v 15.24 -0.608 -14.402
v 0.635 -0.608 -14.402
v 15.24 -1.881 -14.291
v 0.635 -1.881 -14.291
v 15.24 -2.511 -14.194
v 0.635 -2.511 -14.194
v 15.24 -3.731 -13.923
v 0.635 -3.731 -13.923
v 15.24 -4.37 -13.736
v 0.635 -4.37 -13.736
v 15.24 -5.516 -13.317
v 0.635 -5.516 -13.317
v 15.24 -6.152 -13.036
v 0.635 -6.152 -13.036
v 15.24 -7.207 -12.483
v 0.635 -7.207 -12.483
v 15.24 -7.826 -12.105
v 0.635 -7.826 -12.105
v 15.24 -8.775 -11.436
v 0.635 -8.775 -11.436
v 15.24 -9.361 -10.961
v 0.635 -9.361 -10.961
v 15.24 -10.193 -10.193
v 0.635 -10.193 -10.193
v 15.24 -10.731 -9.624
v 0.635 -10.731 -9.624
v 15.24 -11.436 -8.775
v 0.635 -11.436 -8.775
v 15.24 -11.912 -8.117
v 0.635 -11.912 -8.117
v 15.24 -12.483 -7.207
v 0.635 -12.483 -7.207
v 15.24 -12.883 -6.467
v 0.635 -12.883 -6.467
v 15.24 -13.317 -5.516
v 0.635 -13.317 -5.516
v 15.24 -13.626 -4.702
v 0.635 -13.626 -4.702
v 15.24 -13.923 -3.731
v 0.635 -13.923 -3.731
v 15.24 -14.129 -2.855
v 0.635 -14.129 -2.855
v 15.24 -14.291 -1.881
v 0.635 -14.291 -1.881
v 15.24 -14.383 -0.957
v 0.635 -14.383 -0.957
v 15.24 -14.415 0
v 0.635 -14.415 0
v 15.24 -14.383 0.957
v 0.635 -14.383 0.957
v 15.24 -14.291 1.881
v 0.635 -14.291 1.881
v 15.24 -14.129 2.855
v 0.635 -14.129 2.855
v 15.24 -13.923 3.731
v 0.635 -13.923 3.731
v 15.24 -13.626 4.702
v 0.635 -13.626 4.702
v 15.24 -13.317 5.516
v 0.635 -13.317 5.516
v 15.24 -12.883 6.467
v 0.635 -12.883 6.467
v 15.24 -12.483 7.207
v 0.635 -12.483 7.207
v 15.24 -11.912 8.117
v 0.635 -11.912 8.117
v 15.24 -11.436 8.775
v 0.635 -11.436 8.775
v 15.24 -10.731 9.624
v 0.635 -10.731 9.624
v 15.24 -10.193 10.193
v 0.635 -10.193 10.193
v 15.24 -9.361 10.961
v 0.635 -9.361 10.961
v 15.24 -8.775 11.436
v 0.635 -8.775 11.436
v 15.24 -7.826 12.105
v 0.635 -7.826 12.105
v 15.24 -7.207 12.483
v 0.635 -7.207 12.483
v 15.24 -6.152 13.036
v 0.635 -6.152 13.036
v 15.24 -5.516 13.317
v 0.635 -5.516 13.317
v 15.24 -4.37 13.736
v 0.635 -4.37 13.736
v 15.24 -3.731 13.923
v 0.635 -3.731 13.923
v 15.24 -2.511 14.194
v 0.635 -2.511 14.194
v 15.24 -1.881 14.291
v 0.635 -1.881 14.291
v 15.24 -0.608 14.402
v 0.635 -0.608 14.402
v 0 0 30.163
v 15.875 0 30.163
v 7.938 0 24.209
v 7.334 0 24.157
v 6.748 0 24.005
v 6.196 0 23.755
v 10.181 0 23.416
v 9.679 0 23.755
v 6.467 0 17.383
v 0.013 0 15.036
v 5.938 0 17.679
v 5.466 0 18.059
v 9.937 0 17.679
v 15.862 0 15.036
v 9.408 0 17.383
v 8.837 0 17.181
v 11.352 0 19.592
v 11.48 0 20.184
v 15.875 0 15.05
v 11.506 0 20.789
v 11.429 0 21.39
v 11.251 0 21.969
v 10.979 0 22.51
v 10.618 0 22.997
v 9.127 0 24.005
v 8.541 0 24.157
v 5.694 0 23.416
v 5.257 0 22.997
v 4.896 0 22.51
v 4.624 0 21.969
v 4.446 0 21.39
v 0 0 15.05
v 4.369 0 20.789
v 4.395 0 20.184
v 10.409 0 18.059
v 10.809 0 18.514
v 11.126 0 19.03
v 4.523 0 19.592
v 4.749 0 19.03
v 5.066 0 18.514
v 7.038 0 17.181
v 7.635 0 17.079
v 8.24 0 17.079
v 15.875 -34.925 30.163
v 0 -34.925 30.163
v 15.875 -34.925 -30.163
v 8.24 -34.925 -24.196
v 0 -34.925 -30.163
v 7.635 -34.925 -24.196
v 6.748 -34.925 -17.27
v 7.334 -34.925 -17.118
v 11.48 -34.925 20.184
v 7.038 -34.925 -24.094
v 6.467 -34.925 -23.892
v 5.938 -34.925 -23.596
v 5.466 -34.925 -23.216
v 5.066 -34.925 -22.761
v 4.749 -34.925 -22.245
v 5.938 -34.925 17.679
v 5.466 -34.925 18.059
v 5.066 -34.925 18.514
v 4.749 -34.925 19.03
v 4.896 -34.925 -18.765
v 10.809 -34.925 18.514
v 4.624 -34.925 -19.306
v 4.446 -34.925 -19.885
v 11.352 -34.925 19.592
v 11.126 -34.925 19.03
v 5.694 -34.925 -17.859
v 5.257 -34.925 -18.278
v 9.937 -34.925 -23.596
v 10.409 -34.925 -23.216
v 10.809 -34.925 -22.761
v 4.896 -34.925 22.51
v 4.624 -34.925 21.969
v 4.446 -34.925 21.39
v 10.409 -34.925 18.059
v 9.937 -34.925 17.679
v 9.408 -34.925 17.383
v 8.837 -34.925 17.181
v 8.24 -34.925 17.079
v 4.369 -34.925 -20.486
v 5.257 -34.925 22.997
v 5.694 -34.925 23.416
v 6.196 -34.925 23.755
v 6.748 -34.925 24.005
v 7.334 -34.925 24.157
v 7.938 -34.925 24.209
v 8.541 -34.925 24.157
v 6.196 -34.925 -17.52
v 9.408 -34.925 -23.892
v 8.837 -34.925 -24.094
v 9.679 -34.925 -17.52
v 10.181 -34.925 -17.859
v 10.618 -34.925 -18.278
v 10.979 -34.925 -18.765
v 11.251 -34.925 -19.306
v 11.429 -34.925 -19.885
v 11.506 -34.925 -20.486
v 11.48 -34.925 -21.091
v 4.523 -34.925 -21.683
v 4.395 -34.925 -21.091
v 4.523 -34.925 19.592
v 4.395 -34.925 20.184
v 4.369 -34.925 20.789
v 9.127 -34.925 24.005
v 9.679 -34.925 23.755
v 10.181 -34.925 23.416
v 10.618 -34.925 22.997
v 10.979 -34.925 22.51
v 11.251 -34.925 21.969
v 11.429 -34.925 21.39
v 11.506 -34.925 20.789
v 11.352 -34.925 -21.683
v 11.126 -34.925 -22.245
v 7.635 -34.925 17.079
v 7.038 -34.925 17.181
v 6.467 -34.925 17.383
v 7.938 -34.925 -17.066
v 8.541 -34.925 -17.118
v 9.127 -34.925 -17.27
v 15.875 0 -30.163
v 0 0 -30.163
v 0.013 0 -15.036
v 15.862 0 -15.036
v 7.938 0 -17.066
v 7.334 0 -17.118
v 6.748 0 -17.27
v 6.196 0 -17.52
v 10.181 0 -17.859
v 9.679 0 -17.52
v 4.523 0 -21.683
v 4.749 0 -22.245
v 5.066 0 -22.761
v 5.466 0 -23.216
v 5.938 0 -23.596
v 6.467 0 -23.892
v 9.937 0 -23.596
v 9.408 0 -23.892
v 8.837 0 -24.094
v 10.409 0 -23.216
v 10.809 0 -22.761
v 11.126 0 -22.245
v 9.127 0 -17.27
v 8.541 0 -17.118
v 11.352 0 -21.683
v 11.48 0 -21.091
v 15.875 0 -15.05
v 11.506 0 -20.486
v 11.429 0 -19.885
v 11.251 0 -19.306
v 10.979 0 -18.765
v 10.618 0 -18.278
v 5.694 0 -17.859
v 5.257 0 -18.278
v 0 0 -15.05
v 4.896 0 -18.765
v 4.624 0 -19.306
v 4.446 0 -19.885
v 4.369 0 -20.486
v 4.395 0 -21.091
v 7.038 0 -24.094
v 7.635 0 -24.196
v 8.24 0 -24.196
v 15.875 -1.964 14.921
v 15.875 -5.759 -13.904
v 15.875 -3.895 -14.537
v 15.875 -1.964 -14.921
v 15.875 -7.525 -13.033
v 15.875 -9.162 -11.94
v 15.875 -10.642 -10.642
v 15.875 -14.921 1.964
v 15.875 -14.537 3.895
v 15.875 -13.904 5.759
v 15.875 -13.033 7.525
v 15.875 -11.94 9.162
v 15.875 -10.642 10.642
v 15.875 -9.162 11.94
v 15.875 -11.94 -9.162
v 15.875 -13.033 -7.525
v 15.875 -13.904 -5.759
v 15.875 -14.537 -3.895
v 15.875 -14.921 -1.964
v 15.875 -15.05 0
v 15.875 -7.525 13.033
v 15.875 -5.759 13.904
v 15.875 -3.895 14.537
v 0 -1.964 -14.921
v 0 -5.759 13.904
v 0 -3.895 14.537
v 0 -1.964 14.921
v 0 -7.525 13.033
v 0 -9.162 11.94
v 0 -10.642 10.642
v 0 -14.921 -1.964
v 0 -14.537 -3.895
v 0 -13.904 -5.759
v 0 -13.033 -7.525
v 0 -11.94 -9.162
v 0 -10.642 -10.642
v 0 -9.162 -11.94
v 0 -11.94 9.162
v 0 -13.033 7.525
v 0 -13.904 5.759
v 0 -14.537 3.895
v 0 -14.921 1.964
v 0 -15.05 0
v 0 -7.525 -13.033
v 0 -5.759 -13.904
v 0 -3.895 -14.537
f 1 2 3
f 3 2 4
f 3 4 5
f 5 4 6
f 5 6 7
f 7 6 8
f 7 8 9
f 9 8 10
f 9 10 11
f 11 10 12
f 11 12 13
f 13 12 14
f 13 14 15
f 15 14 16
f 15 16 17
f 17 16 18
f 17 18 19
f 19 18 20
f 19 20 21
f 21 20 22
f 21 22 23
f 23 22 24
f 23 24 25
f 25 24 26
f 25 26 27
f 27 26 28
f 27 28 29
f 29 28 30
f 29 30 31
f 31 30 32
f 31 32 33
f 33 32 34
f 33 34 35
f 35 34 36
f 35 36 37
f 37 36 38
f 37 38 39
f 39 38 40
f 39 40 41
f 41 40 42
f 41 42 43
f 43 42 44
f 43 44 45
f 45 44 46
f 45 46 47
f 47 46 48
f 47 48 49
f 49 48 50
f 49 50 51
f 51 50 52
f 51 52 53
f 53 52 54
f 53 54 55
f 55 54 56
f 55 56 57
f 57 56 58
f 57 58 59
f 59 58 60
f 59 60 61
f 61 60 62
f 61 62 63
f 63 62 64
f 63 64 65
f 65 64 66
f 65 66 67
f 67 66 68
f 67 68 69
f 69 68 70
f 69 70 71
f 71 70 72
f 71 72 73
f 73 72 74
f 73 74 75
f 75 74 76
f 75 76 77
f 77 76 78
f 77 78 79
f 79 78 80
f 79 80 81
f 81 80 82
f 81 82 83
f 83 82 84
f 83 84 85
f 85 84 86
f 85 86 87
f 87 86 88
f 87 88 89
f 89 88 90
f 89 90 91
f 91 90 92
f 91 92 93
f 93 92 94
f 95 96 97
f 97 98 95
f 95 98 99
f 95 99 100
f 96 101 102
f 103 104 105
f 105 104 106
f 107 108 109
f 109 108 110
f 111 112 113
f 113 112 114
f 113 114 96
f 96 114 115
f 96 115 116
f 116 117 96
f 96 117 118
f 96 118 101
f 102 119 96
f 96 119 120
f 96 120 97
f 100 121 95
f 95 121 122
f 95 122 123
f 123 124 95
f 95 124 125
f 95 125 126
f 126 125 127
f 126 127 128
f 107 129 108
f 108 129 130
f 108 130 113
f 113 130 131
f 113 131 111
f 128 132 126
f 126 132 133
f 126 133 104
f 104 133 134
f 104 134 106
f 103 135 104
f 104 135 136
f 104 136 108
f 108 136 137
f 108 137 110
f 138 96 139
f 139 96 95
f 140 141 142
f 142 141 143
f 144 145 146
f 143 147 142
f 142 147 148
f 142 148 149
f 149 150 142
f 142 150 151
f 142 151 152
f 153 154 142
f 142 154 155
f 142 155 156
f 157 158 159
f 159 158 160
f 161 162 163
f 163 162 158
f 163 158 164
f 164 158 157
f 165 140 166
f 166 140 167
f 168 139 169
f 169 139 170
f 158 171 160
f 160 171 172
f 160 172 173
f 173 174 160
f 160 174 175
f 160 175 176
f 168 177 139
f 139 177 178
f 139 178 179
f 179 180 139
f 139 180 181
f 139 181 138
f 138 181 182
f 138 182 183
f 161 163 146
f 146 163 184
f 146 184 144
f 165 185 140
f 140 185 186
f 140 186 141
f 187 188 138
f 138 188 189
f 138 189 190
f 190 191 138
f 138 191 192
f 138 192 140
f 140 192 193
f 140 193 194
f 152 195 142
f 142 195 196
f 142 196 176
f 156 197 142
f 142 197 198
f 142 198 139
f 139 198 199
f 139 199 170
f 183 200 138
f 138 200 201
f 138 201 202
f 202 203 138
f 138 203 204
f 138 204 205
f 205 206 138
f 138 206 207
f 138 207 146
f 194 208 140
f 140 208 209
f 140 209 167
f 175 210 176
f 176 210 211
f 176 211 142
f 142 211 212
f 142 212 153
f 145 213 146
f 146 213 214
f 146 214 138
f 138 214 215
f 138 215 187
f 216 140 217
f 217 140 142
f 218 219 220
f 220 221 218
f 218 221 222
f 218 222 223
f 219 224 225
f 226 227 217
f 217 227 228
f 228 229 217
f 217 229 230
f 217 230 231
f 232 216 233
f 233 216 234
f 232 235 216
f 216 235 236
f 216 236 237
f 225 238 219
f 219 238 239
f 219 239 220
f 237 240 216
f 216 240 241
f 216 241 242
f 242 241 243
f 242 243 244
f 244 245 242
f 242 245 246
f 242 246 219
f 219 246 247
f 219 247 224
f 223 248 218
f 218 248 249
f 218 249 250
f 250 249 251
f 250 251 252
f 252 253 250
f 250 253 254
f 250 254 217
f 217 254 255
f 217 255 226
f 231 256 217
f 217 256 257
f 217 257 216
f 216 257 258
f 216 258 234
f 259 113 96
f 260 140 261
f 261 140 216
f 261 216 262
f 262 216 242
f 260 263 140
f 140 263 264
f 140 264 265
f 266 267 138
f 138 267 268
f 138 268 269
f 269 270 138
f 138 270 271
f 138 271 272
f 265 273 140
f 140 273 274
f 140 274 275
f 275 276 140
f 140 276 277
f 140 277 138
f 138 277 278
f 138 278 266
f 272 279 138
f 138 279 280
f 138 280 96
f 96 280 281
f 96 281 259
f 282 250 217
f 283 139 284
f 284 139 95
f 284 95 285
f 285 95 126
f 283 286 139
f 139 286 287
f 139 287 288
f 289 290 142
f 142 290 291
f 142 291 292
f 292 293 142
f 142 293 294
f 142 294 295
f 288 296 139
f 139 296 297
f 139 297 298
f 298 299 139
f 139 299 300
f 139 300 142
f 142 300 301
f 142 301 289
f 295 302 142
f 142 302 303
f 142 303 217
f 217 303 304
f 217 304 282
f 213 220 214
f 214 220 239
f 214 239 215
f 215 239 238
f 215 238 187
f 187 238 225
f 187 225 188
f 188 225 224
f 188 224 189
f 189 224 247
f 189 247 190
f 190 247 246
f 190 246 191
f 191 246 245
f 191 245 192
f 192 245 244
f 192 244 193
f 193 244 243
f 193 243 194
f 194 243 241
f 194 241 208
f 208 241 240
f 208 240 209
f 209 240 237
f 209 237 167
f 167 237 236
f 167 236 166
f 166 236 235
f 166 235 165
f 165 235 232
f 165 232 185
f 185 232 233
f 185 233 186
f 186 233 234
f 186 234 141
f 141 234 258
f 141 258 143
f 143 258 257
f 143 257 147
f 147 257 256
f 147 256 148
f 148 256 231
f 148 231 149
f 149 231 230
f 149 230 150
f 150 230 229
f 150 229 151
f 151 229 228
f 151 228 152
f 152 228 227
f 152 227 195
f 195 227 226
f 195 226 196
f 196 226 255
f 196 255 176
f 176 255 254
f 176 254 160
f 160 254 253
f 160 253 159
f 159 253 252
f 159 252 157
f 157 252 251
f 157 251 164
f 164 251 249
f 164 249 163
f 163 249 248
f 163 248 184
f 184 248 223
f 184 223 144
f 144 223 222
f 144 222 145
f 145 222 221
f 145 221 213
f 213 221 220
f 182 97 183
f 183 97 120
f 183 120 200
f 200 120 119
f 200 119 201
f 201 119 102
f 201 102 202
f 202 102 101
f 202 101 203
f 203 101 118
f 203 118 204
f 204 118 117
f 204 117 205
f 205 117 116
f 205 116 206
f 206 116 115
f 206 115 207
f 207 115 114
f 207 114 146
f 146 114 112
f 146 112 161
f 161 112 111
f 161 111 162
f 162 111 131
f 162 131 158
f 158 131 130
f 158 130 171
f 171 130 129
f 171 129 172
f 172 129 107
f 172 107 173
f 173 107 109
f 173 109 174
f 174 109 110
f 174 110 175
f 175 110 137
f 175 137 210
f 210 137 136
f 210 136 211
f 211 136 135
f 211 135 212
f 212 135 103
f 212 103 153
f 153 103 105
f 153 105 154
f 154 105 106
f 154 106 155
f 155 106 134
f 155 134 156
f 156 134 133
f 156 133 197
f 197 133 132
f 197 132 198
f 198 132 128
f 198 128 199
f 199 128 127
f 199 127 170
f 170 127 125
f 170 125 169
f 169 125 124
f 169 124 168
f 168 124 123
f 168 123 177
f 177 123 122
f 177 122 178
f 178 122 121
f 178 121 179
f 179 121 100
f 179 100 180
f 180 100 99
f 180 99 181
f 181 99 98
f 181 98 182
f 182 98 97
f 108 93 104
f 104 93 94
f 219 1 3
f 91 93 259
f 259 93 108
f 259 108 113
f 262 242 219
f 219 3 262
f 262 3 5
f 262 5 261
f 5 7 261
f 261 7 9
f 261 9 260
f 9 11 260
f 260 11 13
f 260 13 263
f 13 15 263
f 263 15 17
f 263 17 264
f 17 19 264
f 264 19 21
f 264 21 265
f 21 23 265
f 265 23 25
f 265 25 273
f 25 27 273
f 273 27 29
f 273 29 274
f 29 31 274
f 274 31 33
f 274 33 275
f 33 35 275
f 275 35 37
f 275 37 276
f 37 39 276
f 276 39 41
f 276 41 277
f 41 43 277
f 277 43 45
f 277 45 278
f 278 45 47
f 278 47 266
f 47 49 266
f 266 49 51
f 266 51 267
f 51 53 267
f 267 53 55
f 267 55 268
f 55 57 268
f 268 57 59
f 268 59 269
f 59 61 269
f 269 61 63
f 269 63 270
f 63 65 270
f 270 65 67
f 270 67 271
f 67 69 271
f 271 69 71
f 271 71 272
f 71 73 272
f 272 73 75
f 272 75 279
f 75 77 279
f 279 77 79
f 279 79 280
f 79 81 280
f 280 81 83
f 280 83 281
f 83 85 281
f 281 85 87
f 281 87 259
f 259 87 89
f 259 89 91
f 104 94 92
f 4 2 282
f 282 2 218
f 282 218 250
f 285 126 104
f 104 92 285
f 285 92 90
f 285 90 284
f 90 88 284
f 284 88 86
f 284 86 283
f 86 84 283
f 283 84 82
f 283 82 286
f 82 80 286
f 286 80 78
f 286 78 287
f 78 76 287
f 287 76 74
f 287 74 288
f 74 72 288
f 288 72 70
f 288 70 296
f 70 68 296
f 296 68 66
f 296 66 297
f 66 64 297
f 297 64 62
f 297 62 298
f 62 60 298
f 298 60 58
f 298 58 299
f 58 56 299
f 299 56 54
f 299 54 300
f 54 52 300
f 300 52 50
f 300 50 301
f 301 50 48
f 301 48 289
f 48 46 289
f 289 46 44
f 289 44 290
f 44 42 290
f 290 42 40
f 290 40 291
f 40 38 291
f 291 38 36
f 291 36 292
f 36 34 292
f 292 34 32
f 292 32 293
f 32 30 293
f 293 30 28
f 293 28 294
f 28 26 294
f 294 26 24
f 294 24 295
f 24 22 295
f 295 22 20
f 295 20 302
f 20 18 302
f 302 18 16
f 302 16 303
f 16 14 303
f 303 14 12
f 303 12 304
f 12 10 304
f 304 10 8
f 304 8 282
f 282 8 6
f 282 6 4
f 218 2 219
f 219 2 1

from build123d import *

# Parameters (mm, degrees)
BOSS_EXTRUDE1_DEPTH                           = 15.875
BOSS_EXTRUDE2_DEPTH                           = 15.875
CBORE_FOR_1_4_SOCKET_HEAD_CAP_SCREW1_AT_COUNT = 2
CBORE_FOR_1_4_SOCKET_HEAD_CAP_SCREW1_AT_PITCH = 41.275
MOVE_FACE1_BY                                 = 0.127
MOVE_FACE1_2_BY                               = 0.127
MOVE_START                                    = 28.575
MOVE_FACE2_OUTLINE_W                          = 15.875
MOVE_FACE2_OUTLINE_H                          = 60.325
MOVE_FACE2_OUTLINE_R                          = 5.55625
MOVE_FACE2_DEPTH                              = 6.35
MOVE_START_2                                  = 22.225
MOVE_FACE2_2_OUTLINE_R                        = 5.55625
MOVE_FACE2_2_OUTLINE_R_2                      = 3.57124
MOVE_FACE2_2_DEPTH                            = 6.35


with BuildPart() as part:
    # Sketch1 → Boss-Extrude1 (new body)
    with BuildSketch(Plane(origin=(0, 0, 0), x_dir=(0, 0, -1), z_dir=(1, 0, 0))):
        with BuildLine():
            Line((30.1625, 0), (14.2875, 0))
            ThreePointArc((14.2875, 0), (0, -14.2875), (-14.2875, 0))
            Line((-14.2875, 0), (-30.1625, 0))
            Line((-30.1625, 0), (-30.1625, -34.925))
            Line((-30.1625, -34.925), (30.1625, -34.925))
            Line((30.1625, -34.925), (30.1625, 0))
        make_face()
    extrude(amount=BOSS_EXTRUDE1_DEPTH)


with BuildPart() as body_2:
    # Sketch1<3> → Boss-Extrude2 (new body)
    with BuildSketch(Plane(origin=(0, 0, 0), x_dir=(0, 0, -1), z_dir=(1, 0, 0))):
        with BuildLine():
            ThreePointArc((-14.2875, 0), (0, 14.2875), (14.2875, 0))
            Line((14.2875, 0), (30.1625, 0))
            Line((30.1625, 0), (30.1625, 34.925))
            Line((30.1625, 34.925), (-30.1625, 34.925))
            Line((-30.1625, 34.925), (-30.1625, 0))
            Line((-30.1625, 0), (-14.2875, 0))
        make_face()
    extrude(amount=BOSS_EXTRUDE2_DEPTH)


with BuildPart() as cbore_for_1_4_socket_head_cap_screw1_tool:
    # Sketch4 → CBORE for 1/4 Socket Head Cap Screw1 (revolve)
    with BuildSketch(Plane(origin=(7.9375, 34.925, 20.6375), x_dir=(0, 0, 1), z_dir=(1, 0, 0))):
        Polygon((0, 0), (0, 69.85), (3.57124, 69.85), (3.57124, 6.35), (5.55625, 6.35), (5.55625, 0.635), (6.19125, 0), align=None)
    cbore_for_1_4_socket_head_cap_screw1 = revolve(axis=Axis((7.9375, 41.275, 20.6375), (0, -1, 0)))


with BuildPart() as part_1:
    add(part.part)

    # CBORE for 1/4 Socket Head Cap Screw1: cut by cbore_for_1_4_socket_head_cap_screw1_tool
    add(cbore_for_1_4_socket_head_cap_screw1_tool.part, mode=Mode.SUBTRACT)


with BuildPart() as body_2_1:
    add(body_2.part)

    # CBORE for 1/4 Socket Head Cap Screw1: cut by cbore_for_1_4_socket_head_cap_screw1_tool
    add(cbore_for_1_4_socket_head_cap_screw1_tool.part, mode=Mode.SUBTRACT)


with BuildPart() as cbore_for_1_4_socket_head_cap_screw1_at_tool:
    # CBORE for 1/4 Socket Head Cap Screw1 at: CBORE for 1/4 Socket Head Cap Screw1 ×2
    with Locations(*[(0, 0, -i * CBORE_FOR_1_4_SOCKET_HEAD_CAP_SCREW1_AT_PITCH) for i in range(1, CBORE_FOR_1_4_SOCKET_HEAD_CAP_SCREW1_AT_COUNT)]):
        add(cbore_for_1_4_socket_head_cap_screw1)


with BuildPart() as part_2:
    add(part_1.part)

    # CBORE for 1/4 Socket Head Cap Screw1 at: cut by cbore_for_1_4_socket_head_cap_screw1_at_tool
    add(cbore_for_1_4_socket_head_cap_screw1_at_tool.part, mode=Mode.SUBTRACT)

    # Move Face1 2: a curved face moved inward by 0.127
    add(Solid.thicken(part_2.faces().sort_by_distance((7.9375, -14.2875, 0))[0], -MOVE_FACE1_2_BY), mode=Mode.SUBTRACT)

    # Chamfer2
    # the kernel refuses this chamfer: 0.635 mm, written as the material it takes off along each edge
    with BuildSketch(Plane(origin=(0, 0, 0), x_dir=(0, 0.1132288377802066, -0.9935689358544497), z_dir=(0, 0.9935689358544497, 0.1132288377802066))) as chamfer2_piece_1:
        with BuildLine():
            Line((15.067460512, 0.017960512), (14.396539488, -0.652960512))
            Line((14.396539488, -0.652960512), (14.383839488, -0.652960512))
            ThreePointArc((14.383839488, -0.652960512), (14.4018, -0.326480256), (14.4018, 0))
            Line((14.4018, 0), (14.4145, 0.0127))
            ThreePointArc((14.4145, 0.0127), (14.740980256, 0.0127), (15.067460512, 0.030660512))
            Line((15.067460512, 0.030660512), (15.067460512, 0.017960512))
        make_face()
    revolve(axis=Axis((0, 0, 0), (-1, 0, 0)), revolution_arc=193.002955297, mode=Mode.SUBTRACT)
    with BuildSketch(Plane(origin=(-1.600435701, 0, -14.4145), x_dir=(0, 0, -1), z_dir=(1, 0, 0))) as chamfer2_piece_2:
        with BuildLine():
            Line((0.639932919, 0.017577515), (-0.031172593, -0.625784266))
            Line((-0.031172593, -0.625784266), (-0.043861283, -0.625248401))
            ThreePointArc((-0.043861283, -0.625248401), (-0.016099091, -0.31288099), (-0.0127, 0))
            Line((-0.0127, 0), (0, 0.0127))
            ThreePointArc((0, 0.0127), (0.319966459, 0.0127), (0.639932919, 0.030277515))
            Line((0.639932919, 0.030277515), (0.639932919, 0.017577515))
        make_face()
    extrude(amount=19.075871403, mode=Mode.SUBTRACT)
    with BuildSketch(Plane(origin=(-1.600435701, 0, 14.4145), x_dir=(0, -0.999777333387341, -0.021101745067597762), z_dir=(1, 0, 0))) as chamfer2_piece_3:
        with BuildLine():
            Line((0.626302721, 0.017960512), (-0.031077302, -0.639419511))
            Line((-0.031077302, -0.639419511), (-0.043774474, -0.639151519))
            ThreePointArc((-0.043774474, -0.639151519), (-0.019449023, -0.319627221), (-0.012697172, 0.000267992))
            Line((-0.012697172, 0.000267992), (0.000267992, 0.012697172))
            ThreePointArc((0.000267992, 0.012697172), (0.313151041, 0.009493172), (0.626034729, 0.030657684))
            Line((0.626034729, 0.030657684), (0.626302721, 0.017960512))
        make_face()
    extrude(amount=19.075871403, mode=Mode.SUBTRACT)
    with BuildSketch(Plane(origin=(15.875, 0, 0), x_dir=(0, 0.11322883778020662, -0.9935689358544497), z_dir=(0, 0.9935689358544497, 0.11322883778020662))) as chamfer2_piece_4:
        with BuildLine():
            Line((14.396539488, 0.652960512), (15.067460512, -0.017960512))
            Line((15.067460512, -0.017960512), (15.067460512, -0.030660512))
            ThreePointArc((15.067460512, -0.030660512), (14.740980256, -0.0127), (14.4145, -0.0127))
            Line((14.4145, -0.0127), (14.4018, 0))
            ThreePointArc((14.4018, 0), (14.4018, 0.326480256), (14.383839488, 0.652960512))
            Line((14.383839488, 0.652960512), (14.396539488, 0.652960512))
        make_face()
    revolve(axis=Axis((15.875, 0, 0), (-1, 0, 0)), revolution_arc=193.002955297, mode=Mode.SUBTRACT)


with BuildPart() as body_2_2:
    add(body_2_1.part)

    # CBORE for 1/4 Socket Head Cap Screw1 at: cut by cbore_for_1_4_socket_head_cap_screw1_at_tool
    add(cbore_for_1_4_socket_head_cap_screw1_at_tool.part, mode=Mode.SUBTRACT)

    # Move Face1: a curved face moved inward by 0.127
    add(Solid.thicken(body_2_2.faces().sort_by_distance((7.9375, 14.2875, 0))[0], -MOVE_FACE1_BY), mode=Mode.SUBTRACT)

    # Move Face2: read off the stored shape, not the designer's step
    # Move Face2 outline → Move Face2 (cut)
    with BuildSketch(Plane(origin=(0, 0, 0), x_dir=(1, 0, 0), z_dir=(0, 1, 0)).offset(MOVE_START)):
        with Locations((7.9375, 0)):
            Rectangle(MOVE_FACE2_OUTLINE_W, MOVE_FACE2_OUTLINE_H)
        with Locations((7.9375, -20.6375)):
            Circle(MOVE_FACE2_OUTLINE_R, mode=Mode.SUBTRACT)
        with Locations((7.9375, 20.6375)):
            Circle(MOVE_FACE2_OUTLINE_R, mode=Mode.SUBTRACT)
    extrude(amount=MOVE_FACE2_DEPTH, mode=Mode.SUBTRACT)

    # Move Face2 2 outline → Move Face2 2 (cut)
    # profile 1 of 2: a face of its own
    with BuildSketch(Plane(origin=(0, 0, 0), x_dir=(1, 0, 0), z_dir=(0, 1, 0)).offset(MOVE_START_2)):
        with Locations((7.9375, 20.6375)):
            Circle(MOVE_FACE2_2_OUTLINE_R)
        with Locations((7.9375, 20.6375)):
            Circle(MOVE_FACE2_2_OUTLINE_R_2, mode=Mode.SUBTRACT)
    # profile 2 of 2: a face of its own
    with BuildSketch(Plane(origin=(0, 0, 0), x_dir=(1, 0, 0), z_dir=(0, 1, 0)).offset(MOVE_START_2)):
        with Locations((7.9375, -20.6375)):
            Circle(MOVE_FACE2_2_OUTLINE_R)
        with Locations((7.9375, -20.6375)):
            Circle(MOVE_FACE2_2_OUTLINE_R_2, mode=Mode.SUBTRACT)
    extrude(amount=MOVE_FACE2_2_DEPTH, mode=Mode.SUBTRACT)

    # Move Face2 3: loft between two sections, ruled curve by curve
    move_face2_3_from = [
        Edge.make_three_point_arc((7.9375, 27.94, -15.08125), (13.49375, 27.94, -20.6375), (7.9375, 27.94, -26.19375)),
        Edge.make_three_point_arc((7.9375, 27.94, -26.19375), (2.38125, 27.94, -20.6375), (7.9375, 27.94, -15.08125)),
    ]
    move_face2_3_to = [
        Edge.make_three_point_arc((7.9375, 28.575, -14.44625), (14.12875, 28.575, -20.6375), (7.9375, 28.575, -26.82875)),
        Edge.make_three_point_arc((7.9375, 28.575, -26.82875), (1.74625, 28.575, -20.6375), (7.9375, 28.575, -14.44625)),
    ]
    move_face2_3 = Solid(Shell([*[Face.make_surface_from_curves(move_face2_3_from[k], move_face2_3_to[k]) for k in range(2)], Face(Wire(move_face2_3_from)), Face(Wire(move_face2_3_to))]))
    add(move_face2_3, mode=Mode.SUBTRACT)

    # Move Face2 4: loft between two sections, ruled curve by curve
    move_face2_4_from = [
        Edge.make_three_point_arc((7.9375, 27.94, 26.19375), (13.49375, 27.94, 20.6375), (7.9375, 27.94, 15.08125)),
        Edge.make_three_point_arc((7.9375, 27.94, 15.08125), (2.38125, 27.94, 20.6375), (7.9375, 27.94, 26.19375)),
    ]
    move_face2_4_to = [
        Edge.make_three_point_arc((7.9375, 28.575, 26.82875), (14.12875, 28.575, 20.6375), (7.9375, 28.575, 14.44625)),
        Edge.make_three_point_arc((7.9375, 28.575, 14.44625), (1.74625, 28.575, 20.6375), (7.9375, 28.575, 26.82875)),
    ]
    move_face2_4 = Solid(Shell([*[Face.make_surface_from_curves(move_face2_4_from[k], move_face2_4_to[k]) for k in range(2)], Face(Wire(move_face2_4_from)), Face(Wire(move_face2_4_to))]))
    add(move_face2_4, mode=Mode.SUBTRACT)

    # Chamfer1
    # the kernel refuses this chamfer: 0.635 mm, written as the material it takes off along each edge
    with BuildSketch(Plane(origin=(0, 0, 0), x_dir=(0, -0.11322883778020673, 0.9935689358544497), z_dir=(0, -0.9935689358544497, -0.11322883778020673))) as chamfer1_piece_1:
        with BuildLine():
            Line((15.067460512, 0.017960512), (14.396539488, -0.652960512))
            Line((14.396539488, -0.652960512), (14.383839488, -0.652960512))
            ThreePointArc((14.383839488, -0.652960512), (14.4018, -0.326480256), (14.4018, 0))
            Line((14.4018, 0), (14.4145, 0.0127))
            ThreePointArc((14.4145, 0.0127), (14.740980256, 0.0127), (15.067460512, 0.030660512))
            Line((15.067460512, 0.030660512), (15.067460512, 0.017960512))
        make_face()
    revolve(axis=Axis((0, 0, 0), (-1, 0, 0)), revolution_arc=193.002955297, mode=Mode.SUBTRACT)
    with BuildSketch(Plane(origin=(-1.600435701, 0, 14.4145), x_dir=(0, 0, 1), z_dir=(1, 0, 0))) as chamfer1_piece_2:
        with BuildLine():
            Line((0.639932919, 0.017577515), (-0.031172593, -0.625784266))
            Line((-0.031172593, -0.625784266), (-0.043861283, -0.625248401))
            ThreePointArc((-0.043861283, -0.625248401), (-0.016099091, -0.31288099), (-0.0127, 0))
            Line((-0.0127, 0), (0, 0.0127))
            ThreePointArc((0, 0.0127), (0.319966459, 0.0127), (0.639932919, 0.030277515))
            Line((0.639932919, 0.030277515), (0.639932919, 0.017577515))
        make_face()
    extrude(amount=19.075871403, mode=Mode.SUBTRACT)
    with BuildSketch(Plane(origin=(-1.600435701, 0, -14.4145), x_dir=(0, 0.999777333387341, 0.021101745067597762), z_dir=(1, 0, 0))) as chamfer1_piece_3:
        with BuildLine():
            Line((0.626302721, 0.017960512), (-0.031077302, -0.639419511))
            Line((-0.031077302, -0.639419511), (-0.043774474, -0.639151519))
            ThreePointArc((-0.043774474, -0.639151519), (-0.019449023, -0.319627221), (-0.012697172, 0.000267992))
            Line((-0.012697172, 0.000267992), (0.000267992, 0.012697172))
            ThreePointArc((0.000267992, 0.012697172), (0.313151041, 0.009493172), (0.626034729, 0.030657684))
            Line((0.626034729, 0.030657684), (0.626302721, 0.017960512))
        make_face()
    extrude(amount=19.075871403, mode=Mode.SUBTRACT)
    with BuildSketch(Plane(origin=(15.875, 0, 0), x_dir=(0, -0.11322883778020675, 0.9935689358544497), z_dir=(0, -0.9935689358544497, -0.11322883778020675))) as chamfer1_piece_4:
        with BuildLine():
            Line((14.396539488, 0.652960512), (15.067460512, -0.017960512))
            Line((15.067460512, -0.017960512), (15.067460512, -0.030660512))
            ThreePointArc((15.067460512, -0.030660512), (14.740980256, -0.0127), (14.4145, -0.0127))
            Line((14.4145, -0.0127), (14.4018, 0))
            ThreePointArc((14.4018, 0), (14.4018, 0.326480256), (14.383839488, 0.652960512))
            Line((14.383839488, 0.652960512), (14.396539488, 0.652960512))
        make_face()
    revolve(axis=Axis((15.875, 0, 0), (-1, 0, 0)), revolution_arc=193.002955297, mode=Mode.SUBTRACT)


solid = part_2.part
